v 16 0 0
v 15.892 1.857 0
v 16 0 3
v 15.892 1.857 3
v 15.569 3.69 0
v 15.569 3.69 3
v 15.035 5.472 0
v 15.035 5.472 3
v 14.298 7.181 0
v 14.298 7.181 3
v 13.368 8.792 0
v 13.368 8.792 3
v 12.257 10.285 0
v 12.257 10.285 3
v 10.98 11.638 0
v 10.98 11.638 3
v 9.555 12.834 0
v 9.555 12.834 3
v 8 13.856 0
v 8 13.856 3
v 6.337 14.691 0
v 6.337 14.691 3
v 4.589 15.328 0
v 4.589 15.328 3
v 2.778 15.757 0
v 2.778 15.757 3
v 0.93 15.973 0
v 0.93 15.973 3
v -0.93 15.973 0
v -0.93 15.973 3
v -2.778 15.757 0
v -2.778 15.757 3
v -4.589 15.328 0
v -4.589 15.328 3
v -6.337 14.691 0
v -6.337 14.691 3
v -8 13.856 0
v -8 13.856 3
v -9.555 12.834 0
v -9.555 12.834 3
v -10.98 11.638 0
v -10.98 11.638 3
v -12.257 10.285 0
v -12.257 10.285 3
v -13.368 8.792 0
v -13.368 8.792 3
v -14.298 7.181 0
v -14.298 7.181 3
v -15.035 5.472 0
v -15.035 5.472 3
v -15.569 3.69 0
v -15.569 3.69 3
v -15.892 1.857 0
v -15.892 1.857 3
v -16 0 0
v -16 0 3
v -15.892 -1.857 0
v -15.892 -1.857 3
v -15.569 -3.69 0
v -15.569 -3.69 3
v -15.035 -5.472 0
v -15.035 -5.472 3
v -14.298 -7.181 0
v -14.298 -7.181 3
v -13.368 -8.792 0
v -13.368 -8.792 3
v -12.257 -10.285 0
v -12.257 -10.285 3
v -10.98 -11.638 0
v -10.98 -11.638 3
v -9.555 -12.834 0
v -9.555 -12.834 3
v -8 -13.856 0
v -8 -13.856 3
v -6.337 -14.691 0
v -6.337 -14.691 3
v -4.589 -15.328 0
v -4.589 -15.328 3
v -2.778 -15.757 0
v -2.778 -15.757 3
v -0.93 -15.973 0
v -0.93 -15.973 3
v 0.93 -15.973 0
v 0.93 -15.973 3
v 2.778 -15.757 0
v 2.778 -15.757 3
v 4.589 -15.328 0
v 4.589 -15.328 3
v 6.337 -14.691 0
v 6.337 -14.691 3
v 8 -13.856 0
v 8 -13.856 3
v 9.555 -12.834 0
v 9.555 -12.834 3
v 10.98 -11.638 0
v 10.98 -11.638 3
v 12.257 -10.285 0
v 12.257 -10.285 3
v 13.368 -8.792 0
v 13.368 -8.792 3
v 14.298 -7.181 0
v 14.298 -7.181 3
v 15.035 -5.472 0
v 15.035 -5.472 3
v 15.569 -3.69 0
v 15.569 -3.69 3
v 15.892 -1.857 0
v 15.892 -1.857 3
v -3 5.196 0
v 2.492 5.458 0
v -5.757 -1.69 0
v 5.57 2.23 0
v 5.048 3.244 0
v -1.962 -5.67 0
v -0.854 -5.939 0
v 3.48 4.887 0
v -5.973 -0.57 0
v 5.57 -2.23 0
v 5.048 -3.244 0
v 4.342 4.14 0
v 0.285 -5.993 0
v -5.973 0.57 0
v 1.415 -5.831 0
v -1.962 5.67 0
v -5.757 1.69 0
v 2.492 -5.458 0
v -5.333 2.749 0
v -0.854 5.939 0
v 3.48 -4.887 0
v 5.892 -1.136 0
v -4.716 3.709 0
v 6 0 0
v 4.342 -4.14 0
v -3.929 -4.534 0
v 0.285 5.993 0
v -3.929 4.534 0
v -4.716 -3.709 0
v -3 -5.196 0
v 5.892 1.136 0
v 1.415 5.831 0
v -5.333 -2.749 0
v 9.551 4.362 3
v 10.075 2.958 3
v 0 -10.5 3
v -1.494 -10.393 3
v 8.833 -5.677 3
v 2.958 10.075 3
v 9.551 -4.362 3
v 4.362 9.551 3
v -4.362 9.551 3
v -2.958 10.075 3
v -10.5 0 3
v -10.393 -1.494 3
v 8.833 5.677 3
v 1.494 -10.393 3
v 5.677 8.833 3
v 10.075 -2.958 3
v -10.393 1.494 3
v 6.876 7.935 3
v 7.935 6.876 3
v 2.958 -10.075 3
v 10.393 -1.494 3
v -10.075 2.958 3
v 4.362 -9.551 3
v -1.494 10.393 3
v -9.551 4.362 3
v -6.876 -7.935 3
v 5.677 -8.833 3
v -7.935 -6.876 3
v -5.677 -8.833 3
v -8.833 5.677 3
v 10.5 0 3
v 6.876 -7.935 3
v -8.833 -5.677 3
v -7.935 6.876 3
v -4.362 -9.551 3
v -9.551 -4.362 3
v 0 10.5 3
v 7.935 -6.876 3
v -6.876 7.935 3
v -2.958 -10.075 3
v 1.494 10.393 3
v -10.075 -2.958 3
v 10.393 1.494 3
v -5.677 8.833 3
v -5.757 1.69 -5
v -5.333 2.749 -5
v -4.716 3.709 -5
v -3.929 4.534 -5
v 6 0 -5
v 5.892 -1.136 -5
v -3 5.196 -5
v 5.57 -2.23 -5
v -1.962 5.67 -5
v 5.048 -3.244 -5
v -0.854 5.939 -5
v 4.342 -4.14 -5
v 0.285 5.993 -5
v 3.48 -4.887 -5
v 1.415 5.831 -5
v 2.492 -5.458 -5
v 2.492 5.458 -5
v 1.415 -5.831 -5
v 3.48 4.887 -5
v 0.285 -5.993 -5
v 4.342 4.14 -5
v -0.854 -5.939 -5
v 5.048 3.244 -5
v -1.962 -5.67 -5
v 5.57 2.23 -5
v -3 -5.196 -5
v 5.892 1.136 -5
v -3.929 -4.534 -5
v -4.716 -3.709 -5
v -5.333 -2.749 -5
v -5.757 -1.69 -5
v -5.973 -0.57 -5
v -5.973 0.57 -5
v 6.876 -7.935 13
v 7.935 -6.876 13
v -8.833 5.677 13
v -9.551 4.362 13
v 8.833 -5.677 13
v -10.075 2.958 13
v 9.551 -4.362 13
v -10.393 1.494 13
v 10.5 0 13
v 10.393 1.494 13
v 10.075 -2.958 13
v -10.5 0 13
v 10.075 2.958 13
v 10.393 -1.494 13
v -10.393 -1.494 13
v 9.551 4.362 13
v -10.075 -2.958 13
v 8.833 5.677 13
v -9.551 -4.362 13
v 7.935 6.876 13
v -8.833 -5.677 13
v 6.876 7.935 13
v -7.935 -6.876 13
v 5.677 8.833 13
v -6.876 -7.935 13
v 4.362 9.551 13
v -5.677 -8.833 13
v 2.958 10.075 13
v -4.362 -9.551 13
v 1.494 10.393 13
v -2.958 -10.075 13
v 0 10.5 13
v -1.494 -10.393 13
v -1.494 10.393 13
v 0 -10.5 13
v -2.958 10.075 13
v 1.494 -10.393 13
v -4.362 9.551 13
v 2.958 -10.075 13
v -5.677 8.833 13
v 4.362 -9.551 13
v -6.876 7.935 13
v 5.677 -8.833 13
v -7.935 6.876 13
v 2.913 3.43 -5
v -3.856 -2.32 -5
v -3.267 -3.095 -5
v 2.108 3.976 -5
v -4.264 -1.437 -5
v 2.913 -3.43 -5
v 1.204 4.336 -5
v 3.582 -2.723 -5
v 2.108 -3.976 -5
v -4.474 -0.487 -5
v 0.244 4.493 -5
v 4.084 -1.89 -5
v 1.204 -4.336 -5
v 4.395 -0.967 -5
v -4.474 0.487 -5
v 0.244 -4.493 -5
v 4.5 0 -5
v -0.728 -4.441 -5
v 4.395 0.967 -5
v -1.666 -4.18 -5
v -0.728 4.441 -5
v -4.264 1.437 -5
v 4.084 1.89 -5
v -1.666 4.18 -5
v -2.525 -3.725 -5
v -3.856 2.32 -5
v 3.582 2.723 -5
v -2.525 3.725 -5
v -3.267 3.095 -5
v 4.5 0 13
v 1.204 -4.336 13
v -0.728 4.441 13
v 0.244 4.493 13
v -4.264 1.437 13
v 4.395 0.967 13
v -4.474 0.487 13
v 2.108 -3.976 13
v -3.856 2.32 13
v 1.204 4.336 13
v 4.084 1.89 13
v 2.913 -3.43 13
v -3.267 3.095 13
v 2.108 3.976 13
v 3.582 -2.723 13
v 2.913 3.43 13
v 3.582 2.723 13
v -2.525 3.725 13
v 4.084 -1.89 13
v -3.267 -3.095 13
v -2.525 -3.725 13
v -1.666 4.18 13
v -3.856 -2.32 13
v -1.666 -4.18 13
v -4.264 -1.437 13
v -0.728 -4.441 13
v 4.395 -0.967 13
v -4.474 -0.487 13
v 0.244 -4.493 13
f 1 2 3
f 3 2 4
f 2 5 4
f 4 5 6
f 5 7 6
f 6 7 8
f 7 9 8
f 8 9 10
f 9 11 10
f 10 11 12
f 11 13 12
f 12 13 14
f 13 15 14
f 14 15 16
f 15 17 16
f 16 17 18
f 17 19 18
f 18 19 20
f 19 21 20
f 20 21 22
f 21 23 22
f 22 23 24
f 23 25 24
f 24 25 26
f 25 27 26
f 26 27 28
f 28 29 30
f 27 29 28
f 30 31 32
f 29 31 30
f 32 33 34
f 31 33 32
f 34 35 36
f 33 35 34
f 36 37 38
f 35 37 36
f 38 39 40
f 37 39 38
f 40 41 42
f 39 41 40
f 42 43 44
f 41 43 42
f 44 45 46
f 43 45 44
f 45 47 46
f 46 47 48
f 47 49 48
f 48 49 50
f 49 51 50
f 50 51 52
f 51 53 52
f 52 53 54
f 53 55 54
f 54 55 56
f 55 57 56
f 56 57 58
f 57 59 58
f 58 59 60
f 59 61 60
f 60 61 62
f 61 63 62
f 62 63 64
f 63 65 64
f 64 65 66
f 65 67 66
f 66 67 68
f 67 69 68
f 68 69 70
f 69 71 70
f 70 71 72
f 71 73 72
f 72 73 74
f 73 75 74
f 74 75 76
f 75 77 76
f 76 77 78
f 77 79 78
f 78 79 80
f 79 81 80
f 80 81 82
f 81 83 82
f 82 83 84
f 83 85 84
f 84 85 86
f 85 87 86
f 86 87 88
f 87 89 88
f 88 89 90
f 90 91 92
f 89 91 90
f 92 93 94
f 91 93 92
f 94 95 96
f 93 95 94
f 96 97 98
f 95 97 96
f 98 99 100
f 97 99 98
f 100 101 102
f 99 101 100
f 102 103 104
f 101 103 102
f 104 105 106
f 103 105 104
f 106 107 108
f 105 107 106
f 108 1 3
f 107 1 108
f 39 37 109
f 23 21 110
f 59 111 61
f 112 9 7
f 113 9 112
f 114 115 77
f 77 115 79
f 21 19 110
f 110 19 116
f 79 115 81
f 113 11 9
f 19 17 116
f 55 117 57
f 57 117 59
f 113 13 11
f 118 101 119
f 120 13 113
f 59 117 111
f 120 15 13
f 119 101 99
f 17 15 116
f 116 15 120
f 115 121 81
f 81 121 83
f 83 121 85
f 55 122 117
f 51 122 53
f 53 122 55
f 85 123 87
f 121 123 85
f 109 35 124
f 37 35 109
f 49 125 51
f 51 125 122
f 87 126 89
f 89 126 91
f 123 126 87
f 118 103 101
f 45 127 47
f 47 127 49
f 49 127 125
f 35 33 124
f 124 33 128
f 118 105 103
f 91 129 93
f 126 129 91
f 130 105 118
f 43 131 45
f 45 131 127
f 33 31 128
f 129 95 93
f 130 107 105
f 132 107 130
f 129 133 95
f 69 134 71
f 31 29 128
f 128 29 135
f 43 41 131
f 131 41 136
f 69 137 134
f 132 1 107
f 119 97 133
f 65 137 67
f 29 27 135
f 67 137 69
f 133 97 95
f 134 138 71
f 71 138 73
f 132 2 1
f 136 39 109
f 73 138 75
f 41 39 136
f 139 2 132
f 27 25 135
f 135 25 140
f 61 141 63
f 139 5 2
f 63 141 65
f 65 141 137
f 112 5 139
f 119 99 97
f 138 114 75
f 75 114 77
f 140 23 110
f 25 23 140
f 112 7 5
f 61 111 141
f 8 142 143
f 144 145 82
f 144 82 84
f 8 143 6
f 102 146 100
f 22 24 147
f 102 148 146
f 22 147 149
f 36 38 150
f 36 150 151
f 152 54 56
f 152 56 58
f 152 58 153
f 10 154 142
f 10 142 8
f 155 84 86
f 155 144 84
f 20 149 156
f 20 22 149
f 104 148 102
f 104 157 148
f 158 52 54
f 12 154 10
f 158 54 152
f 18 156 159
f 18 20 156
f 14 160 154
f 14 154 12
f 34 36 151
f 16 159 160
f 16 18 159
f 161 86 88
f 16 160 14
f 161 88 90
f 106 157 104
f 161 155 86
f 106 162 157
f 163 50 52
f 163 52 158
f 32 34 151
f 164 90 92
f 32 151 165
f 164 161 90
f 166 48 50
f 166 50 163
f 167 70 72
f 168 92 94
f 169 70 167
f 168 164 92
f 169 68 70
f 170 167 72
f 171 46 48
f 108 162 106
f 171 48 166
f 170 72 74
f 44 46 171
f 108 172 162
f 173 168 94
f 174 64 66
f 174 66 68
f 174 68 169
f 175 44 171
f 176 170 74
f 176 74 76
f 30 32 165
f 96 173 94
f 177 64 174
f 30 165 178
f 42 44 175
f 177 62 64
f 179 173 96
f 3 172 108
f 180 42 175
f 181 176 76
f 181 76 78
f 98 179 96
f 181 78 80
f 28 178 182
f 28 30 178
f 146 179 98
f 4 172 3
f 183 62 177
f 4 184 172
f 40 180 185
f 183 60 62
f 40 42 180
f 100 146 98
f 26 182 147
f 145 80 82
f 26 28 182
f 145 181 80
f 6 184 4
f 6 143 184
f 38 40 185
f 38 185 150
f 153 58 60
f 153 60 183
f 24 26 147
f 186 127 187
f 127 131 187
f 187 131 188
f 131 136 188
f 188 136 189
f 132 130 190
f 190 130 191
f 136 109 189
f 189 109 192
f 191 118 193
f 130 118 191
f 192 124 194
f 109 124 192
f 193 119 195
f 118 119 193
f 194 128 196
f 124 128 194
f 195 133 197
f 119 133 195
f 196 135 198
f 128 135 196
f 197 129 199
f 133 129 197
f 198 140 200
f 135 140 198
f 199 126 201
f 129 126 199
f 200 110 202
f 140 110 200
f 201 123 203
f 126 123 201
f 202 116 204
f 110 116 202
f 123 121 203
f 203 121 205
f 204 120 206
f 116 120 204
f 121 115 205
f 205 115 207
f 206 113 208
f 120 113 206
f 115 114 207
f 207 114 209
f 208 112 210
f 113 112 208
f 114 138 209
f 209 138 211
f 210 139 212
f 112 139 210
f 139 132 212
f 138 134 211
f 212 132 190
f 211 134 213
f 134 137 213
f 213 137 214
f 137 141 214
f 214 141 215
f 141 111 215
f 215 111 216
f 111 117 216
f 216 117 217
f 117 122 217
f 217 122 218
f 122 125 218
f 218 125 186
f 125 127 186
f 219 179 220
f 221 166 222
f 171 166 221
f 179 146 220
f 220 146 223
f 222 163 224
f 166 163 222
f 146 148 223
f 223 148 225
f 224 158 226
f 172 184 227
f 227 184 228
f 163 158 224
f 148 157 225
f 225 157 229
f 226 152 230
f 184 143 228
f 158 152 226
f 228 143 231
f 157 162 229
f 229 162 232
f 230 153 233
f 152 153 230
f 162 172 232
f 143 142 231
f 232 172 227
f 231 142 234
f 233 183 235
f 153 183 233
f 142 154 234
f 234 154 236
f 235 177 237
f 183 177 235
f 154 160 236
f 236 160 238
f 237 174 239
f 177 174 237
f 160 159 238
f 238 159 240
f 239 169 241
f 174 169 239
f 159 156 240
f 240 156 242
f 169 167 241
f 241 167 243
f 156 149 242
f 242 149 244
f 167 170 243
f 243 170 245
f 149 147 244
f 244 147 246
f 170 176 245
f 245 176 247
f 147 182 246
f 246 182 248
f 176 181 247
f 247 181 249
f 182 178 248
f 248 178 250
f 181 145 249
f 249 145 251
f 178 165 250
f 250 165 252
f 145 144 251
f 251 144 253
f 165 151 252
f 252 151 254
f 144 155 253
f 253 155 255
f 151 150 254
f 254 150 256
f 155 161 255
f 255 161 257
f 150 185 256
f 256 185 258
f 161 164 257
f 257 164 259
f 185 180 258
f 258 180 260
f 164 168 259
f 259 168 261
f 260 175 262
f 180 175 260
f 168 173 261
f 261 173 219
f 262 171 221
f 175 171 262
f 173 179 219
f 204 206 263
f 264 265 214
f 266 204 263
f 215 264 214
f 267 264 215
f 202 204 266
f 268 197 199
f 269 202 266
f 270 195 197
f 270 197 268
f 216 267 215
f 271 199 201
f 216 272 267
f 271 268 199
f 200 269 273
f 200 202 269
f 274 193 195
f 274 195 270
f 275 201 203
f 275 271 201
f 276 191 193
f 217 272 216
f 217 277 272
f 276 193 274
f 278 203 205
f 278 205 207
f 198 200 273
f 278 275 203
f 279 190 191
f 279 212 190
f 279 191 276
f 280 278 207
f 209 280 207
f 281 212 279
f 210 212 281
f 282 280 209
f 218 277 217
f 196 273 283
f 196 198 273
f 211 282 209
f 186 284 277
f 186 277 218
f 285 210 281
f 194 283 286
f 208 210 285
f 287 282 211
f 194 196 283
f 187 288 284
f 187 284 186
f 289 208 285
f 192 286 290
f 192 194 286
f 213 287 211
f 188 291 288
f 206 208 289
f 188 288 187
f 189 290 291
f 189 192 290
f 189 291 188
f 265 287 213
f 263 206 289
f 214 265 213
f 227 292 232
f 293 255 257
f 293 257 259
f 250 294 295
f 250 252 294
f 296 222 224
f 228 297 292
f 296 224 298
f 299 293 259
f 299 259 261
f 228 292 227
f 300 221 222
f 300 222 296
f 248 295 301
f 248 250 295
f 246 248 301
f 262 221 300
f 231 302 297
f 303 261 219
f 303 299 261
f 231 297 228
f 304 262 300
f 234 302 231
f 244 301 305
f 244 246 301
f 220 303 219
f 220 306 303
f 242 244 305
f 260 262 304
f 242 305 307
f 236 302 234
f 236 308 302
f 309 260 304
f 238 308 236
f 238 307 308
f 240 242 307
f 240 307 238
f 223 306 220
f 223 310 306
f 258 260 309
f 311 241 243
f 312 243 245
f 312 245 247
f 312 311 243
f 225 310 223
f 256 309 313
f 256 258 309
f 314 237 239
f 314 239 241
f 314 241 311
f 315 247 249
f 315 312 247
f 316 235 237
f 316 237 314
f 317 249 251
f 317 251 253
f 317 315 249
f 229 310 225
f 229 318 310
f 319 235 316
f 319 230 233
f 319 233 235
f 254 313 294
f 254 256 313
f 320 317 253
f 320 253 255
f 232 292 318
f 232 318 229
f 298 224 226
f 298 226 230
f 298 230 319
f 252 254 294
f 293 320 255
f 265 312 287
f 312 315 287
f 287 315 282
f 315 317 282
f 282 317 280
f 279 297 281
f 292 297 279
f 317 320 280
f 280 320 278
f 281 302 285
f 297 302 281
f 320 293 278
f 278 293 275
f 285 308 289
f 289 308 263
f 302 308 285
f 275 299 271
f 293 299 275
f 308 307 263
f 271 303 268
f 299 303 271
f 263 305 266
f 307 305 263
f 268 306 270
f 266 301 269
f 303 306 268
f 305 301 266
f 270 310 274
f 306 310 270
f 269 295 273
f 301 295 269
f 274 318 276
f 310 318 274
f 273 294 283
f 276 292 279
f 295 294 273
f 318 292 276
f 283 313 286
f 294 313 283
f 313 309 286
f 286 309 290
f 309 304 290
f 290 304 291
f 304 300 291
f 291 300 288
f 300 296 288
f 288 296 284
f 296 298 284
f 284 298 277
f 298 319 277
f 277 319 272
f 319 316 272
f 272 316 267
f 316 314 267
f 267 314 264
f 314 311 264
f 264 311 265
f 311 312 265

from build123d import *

# Parameters (mm, degrees)
SKETCH_R     = 16
PAD_DEPTH    = 3
SKETCH001_R  = 10.5
PAD001_DEPTH = 10
SKETCH002_R  = 6
PAD002_DEPTH = 5
SKETCH003_R  = 4.5
POCKET_DEPTH = 18.001


with BuildPart() as part:
    # Sketch → Pad (new body)
    with BuildSketch(Plane.XY):
        Circle(SKETCH_R)
    extrude(amount=PAD_DEPTH)

    # Sketch001 (on Face3 of Pad) → Pad001 (join)
    with BuildSketch(Plane.XY.offset(3)):
        Circle(SKETCH001_R)
    extrude(amount=PAD001_DEPTH)

    # Sketch002 (on Face2 of Pad001) → Pad002 (join)
    with BuildSketch(Plane(origin=(0, 0, 0), x_dir=(1, 0, 0), z_dir=(0, 0, -1))):
        Circle(SKETCH002_R)
    extrude(amount=PAD002_DEPTH)

    # Sketch003 (on Face7 of Pad002) → Pocket (cut, through all)
    with BuildSketch(Plane.XY.offset(13)):
        Circle(SKETCH003_R)
    extrude(amount=-POCKET_DEPTH, mode=Mode.SUBTRACT)


solid = part.part
